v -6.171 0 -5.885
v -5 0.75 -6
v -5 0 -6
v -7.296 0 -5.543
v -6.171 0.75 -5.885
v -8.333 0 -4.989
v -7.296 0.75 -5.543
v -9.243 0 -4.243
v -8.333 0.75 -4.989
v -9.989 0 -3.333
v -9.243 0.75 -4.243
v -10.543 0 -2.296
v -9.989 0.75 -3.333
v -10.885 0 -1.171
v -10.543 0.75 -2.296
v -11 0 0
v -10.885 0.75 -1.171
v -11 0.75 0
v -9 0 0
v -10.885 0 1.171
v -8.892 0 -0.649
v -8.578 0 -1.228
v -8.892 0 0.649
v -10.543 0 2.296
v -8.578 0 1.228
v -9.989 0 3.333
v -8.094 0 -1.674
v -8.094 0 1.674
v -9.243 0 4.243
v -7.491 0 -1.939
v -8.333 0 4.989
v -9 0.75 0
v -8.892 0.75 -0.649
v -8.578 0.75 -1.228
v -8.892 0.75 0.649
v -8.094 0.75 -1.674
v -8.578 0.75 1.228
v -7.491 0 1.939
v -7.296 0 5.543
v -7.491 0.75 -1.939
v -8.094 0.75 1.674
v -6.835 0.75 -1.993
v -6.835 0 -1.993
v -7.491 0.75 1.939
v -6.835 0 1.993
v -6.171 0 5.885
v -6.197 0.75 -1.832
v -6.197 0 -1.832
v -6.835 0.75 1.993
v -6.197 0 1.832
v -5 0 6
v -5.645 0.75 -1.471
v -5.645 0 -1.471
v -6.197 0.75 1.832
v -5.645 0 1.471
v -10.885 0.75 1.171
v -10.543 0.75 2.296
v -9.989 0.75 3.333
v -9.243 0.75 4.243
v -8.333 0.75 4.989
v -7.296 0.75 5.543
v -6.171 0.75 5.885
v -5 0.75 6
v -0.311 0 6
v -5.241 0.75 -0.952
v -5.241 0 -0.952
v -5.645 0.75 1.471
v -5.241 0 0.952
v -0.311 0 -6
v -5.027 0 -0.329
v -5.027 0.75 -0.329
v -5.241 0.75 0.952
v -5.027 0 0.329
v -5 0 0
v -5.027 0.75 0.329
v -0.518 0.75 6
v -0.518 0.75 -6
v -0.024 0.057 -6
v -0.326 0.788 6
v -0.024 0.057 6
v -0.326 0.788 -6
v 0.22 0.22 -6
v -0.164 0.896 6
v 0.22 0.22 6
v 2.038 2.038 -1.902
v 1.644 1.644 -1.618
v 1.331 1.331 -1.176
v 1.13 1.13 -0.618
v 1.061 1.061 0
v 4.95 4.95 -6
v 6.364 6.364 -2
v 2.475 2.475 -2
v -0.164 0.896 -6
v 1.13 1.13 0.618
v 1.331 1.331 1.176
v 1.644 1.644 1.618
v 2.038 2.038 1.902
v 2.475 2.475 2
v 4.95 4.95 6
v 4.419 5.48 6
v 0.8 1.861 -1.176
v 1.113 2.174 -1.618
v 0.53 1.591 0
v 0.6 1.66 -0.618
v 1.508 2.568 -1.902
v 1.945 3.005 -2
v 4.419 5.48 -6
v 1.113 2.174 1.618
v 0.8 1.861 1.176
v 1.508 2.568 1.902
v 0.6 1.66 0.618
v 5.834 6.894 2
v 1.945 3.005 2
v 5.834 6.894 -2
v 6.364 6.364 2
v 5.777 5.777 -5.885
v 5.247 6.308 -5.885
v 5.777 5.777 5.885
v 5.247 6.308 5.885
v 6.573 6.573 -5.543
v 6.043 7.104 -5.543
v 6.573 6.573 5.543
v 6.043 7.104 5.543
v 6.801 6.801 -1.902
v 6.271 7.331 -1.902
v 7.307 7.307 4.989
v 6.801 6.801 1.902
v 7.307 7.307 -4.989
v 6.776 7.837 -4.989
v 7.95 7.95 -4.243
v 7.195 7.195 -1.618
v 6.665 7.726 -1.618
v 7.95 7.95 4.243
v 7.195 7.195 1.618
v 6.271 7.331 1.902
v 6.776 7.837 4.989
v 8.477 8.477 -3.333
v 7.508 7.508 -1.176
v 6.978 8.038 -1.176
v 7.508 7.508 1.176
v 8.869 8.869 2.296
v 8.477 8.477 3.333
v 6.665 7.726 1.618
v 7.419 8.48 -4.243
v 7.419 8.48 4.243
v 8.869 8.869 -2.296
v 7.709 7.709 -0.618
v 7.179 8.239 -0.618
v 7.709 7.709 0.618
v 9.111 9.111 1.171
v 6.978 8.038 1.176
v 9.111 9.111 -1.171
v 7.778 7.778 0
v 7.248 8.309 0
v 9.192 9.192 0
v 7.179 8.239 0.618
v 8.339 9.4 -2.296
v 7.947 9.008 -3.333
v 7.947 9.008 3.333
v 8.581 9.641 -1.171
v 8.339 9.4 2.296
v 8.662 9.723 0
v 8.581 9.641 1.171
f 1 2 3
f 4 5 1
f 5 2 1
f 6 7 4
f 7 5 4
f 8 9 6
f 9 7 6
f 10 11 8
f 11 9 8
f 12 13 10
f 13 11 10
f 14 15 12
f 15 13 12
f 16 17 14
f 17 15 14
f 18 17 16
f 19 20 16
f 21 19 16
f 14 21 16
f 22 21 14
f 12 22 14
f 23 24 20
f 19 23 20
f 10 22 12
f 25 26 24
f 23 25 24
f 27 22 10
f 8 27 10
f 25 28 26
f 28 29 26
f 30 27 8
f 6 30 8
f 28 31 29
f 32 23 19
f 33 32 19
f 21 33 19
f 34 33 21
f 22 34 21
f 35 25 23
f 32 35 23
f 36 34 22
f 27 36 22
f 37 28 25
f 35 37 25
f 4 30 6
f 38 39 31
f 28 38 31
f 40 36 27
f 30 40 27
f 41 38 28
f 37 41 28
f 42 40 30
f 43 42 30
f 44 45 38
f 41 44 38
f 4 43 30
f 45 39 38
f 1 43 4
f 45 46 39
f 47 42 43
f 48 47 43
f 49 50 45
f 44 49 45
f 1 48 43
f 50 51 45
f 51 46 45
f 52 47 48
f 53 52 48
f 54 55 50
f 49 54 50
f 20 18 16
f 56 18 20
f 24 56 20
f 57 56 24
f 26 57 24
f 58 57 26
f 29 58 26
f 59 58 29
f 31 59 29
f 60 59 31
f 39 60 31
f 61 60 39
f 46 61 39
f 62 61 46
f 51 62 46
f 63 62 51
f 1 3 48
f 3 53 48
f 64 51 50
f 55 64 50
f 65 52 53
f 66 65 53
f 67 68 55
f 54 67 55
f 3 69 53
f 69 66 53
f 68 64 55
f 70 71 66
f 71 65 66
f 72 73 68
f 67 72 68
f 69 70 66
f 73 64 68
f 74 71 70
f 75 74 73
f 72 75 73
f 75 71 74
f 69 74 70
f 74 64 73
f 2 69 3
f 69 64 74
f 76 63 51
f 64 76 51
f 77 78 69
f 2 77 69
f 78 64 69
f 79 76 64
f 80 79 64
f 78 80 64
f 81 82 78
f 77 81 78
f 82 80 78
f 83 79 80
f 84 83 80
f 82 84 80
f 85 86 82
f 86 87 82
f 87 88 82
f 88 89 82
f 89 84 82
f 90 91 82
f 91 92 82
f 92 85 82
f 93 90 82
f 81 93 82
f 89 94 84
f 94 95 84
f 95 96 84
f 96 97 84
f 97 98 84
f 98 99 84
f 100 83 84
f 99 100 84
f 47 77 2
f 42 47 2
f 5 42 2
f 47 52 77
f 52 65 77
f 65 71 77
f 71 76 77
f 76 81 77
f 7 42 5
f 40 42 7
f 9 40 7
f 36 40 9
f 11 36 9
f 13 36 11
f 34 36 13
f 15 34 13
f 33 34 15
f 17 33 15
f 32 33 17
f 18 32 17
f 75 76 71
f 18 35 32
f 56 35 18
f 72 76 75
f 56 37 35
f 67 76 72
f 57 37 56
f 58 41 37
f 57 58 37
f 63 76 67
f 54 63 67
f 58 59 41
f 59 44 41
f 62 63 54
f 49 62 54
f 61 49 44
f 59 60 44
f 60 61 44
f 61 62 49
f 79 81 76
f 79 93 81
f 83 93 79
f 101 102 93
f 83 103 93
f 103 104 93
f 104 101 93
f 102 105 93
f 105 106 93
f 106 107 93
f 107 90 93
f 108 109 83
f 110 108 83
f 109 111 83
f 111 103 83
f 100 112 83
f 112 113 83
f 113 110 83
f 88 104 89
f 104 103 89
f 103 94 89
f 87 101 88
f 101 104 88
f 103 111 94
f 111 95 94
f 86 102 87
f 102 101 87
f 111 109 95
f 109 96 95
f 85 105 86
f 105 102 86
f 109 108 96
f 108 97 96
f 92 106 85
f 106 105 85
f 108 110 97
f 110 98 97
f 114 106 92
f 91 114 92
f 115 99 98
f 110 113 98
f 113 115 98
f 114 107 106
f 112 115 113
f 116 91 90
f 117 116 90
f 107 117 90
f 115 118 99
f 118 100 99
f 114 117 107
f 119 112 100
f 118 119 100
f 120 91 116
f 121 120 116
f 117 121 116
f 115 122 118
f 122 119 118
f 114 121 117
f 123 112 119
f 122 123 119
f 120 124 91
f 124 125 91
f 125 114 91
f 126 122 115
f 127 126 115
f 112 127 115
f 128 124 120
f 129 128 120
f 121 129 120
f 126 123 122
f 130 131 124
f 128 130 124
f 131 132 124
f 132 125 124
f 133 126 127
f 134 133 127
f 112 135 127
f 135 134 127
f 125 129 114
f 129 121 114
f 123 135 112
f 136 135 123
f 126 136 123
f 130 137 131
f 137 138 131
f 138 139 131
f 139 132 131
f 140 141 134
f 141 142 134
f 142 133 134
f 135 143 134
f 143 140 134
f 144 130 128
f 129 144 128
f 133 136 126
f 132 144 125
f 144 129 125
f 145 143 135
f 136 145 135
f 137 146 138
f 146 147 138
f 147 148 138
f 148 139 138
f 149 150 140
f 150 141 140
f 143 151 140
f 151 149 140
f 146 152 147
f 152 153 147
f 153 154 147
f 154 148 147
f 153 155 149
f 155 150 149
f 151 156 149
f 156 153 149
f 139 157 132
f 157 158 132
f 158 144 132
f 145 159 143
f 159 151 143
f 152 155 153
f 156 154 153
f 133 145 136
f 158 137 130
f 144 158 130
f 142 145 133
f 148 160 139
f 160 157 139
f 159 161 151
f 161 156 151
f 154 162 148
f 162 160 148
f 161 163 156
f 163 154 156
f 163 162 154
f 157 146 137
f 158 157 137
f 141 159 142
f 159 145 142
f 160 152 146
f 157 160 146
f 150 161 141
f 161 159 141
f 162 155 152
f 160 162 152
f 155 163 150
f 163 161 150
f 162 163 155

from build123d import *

# Parameters (mm, degrees)
ESTRUSIONE_SOTTILE1_DEPTH = 6
RACCORDO3_R               = 6
SCHIZZO4_R                = 2
TAGLIO_ESTRUSIONE1_DEPTH  = 0.75
TAGLIO_ESTRUSIONE2_DEPTH  = 0.75
RACCORDO1_R               = 0.75
RACCORDO2_R               = 0.5


with BuildPart() as part:
    # Schizzo1 → Estrusione-Sottile1 (new, symmetric)
    with BuildSketch(Plane.XY):
        Polygon((9.192388155, 9.192388155), (0, 0), (-11, 0), (-11, 0.75), (-0.310660172, 0.75), (8.66205807, 9.722718241), align=None)
    extrude(amount=ESTRUSIONE_SOTTILE1_DEPTH, both=True)

    # Raccordo3
    raccordo3_edges = [part.edges().sort_by_distance(p)[0] for p in [
        (-11, 0.375, 6),
        (-11, 0.375, -6),
        (8.927223112, 9.457553198, -6),
        (8.927223112, 9.457553198, 6),
    ]]
    fillet(raccordo3_edges, radius=RACCORDO3_R - 0.0001)  # a hair under: the kernel refuses the full size

    # Schizzo4 → Taglio-Estrusione1 (cut)
    with BuildSketch(Plane(origin=(0, 0.75, 0), x_dir=(1, 0, 0), z_dir=(0, 1, 0))):
        with Locations(Location((-7, 0, 0), (0, 0, 180))):
            Circle(SCHIZZO4_R)
    extrude(amount=-TAGLIO_ESTRUSIONE1_DEPTH, mode=Mode.SUBTRACT)

    # Schizzo5 → Taglio-Estrusione2 (cut)
    with BuildSketch(Plane(origin=(-0.530330086, 0.530330086, 0), x_dir=(0, 0, 1), z_dir=(-0.7071067811865491, 0.7071067811865459, 0))):
        with BuildLine():
            Line((2, 9), (2, 3.5))
            ThreePointArc((2, 3.5), (0, 1.5), (-2, 3.5))
            Line((-2, 3.5), (-2, 9))
            ThreePointArc((-2, 9), (0, 11), (2, 9))
        make_face()
    extrude(amount=-TAGLIO_ESTRUSIONE2_DEPTH, mode=Mode.SUBTRACT)

    # Raccordo1
    raccordo1_edges = [part.edges().sort_by_distance(p)[0] for p in [
        (0, 0, 0),
    ]]
    fillet(raccordo1_edges, radius=RACCORDO1_R)

    # Raccordo2
    raccordo2_edges = [part.edges().sort_by_distance(p)[0] for p in [
        (-0.310660172, 0.75, 0),
    ]]
    fillet(raccordo2_edges, radius=RACCORDO2_R)


solid = part.part
